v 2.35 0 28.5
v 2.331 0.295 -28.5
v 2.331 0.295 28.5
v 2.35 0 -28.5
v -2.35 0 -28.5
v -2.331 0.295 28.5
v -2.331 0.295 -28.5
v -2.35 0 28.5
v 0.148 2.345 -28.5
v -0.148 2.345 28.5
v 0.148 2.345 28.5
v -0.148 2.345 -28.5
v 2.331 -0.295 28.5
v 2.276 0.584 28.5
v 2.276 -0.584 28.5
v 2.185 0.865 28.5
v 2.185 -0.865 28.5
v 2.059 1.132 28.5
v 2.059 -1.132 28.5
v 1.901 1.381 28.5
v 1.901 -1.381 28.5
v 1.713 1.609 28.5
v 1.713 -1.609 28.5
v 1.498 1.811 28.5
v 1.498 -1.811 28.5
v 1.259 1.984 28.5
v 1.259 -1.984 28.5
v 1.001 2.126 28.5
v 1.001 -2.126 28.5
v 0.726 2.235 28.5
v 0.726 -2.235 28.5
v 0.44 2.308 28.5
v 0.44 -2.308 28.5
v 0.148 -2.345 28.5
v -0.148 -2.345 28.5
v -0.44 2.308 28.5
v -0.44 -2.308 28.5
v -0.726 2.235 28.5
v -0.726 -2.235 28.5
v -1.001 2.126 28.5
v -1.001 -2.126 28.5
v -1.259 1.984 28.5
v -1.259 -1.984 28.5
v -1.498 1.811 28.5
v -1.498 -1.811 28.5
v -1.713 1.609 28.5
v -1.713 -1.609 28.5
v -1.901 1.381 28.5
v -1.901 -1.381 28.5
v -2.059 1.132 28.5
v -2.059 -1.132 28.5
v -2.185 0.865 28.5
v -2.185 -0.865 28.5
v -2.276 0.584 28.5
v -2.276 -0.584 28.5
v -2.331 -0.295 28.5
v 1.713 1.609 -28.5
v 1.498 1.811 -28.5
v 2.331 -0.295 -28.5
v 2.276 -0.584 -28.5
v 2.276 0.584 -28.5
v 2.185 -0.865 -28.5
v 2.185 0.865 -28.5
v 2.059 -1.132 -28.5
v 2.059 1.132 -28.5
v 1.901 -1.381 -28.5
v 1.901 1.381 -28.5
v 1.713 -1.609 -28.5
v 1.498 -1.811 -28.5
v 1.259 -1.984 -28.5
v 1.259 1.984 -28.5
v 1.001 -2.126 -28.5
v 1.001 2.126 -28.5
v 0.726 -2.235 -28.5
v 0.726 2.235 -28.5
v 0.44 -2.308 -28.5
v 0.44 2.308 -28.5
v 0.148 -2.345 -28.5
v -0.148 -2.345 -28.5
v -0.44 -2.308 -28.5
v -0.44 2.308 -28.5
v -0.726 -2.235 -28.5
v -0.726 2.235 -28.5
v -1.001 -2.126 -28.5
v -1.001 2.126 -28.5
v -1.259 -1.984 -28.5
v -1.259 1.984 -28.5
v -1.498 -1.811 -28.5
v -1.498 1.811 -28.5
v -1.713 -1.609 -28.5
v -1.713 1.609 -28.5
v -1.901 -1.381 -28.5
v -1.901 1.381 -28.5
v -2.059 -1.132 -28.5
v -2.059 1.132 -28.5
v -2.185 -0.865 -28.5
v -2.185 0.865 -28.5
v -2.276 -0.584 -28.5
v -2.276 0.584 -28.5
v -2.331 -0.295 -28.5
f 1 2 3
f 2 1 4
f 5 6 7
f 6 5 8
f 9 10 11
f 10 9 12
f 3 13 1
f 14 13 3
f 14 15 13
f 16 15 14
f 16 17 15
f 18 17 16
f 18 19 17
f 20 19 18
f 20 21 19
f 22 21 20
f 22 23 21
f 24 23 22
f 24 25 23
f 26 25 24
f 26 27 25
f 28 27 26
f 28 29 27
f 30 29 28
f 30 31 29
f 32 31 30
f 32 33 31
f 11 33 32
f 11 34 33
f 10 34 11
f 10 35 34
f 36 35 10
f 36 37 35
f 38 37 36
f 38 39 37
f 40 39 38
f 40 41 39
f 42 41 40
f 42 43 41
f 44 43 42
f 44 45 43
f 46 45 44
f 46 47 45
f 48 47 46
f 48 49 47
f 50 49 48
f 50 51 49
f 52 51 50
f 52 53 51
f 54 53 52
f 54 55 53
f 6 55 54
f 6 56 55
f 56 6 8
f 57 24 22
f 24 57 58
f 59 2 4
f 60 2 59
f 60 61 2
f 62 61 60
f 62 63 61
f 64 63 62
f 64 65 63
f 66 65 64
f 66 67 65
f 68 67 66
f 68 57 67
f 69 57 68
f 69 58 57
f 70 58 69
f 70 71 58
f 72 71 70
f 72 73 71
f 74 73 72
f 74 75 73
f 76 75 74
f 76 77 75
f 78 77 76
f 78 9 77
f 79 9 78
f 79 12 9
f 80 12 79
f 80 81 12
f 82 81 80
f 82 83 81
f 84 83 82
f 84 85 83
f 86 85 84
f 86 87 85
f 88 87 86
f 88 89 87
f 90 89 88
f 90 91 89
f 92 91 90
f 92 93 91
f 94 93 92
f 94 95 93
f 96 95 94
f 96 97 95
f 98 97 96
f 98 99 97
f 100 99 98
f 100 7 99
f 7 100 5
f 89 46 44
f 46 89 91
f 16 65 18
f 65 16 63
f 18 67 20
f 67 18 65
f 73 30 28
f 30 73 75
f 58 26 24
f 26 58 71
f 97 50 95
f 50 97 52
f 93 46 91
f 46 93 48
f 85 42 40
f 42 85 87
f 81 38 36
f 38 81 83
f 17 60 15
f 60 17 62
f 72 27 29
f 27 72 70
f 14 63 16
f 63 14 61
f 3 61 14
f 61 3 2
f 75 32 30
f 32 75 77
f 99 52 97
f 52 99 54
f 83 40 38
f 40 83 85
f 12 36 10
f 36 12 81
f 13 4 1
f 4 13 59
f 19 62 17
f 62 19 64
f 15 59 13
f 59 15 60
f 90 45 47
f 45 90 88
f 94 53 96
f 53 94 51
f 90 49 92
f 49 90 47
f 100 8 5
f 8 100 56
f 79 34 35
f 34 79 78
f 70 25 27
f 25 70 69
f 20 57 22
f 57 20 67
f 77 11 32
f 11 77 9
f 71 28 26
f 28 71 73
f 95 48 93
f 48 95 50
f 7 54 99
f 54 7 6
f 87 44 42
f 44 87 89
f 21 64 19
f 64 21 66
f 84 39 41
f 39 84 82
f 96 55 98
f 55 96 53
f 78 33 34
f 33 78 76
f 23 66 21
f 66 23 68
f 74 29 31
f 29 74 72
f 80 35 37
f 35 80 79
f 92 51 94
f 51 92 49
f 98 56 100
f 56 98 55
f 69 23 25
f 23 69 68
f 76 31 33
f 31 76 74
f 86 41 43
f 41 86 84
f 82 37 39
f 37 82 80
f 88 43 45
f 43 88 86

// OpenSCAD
$fn = 50;


difference() {
	union() {
		translate(v = [0, 0, -28.5000000000]) {
			cylinder(h = 57, r = 2.3500000000);
		}
	}
	union() {
		translate(v = [0, 0, -100.0000000000]) {
			cylinder(h = 200, r = 0);
		}
	}
}
